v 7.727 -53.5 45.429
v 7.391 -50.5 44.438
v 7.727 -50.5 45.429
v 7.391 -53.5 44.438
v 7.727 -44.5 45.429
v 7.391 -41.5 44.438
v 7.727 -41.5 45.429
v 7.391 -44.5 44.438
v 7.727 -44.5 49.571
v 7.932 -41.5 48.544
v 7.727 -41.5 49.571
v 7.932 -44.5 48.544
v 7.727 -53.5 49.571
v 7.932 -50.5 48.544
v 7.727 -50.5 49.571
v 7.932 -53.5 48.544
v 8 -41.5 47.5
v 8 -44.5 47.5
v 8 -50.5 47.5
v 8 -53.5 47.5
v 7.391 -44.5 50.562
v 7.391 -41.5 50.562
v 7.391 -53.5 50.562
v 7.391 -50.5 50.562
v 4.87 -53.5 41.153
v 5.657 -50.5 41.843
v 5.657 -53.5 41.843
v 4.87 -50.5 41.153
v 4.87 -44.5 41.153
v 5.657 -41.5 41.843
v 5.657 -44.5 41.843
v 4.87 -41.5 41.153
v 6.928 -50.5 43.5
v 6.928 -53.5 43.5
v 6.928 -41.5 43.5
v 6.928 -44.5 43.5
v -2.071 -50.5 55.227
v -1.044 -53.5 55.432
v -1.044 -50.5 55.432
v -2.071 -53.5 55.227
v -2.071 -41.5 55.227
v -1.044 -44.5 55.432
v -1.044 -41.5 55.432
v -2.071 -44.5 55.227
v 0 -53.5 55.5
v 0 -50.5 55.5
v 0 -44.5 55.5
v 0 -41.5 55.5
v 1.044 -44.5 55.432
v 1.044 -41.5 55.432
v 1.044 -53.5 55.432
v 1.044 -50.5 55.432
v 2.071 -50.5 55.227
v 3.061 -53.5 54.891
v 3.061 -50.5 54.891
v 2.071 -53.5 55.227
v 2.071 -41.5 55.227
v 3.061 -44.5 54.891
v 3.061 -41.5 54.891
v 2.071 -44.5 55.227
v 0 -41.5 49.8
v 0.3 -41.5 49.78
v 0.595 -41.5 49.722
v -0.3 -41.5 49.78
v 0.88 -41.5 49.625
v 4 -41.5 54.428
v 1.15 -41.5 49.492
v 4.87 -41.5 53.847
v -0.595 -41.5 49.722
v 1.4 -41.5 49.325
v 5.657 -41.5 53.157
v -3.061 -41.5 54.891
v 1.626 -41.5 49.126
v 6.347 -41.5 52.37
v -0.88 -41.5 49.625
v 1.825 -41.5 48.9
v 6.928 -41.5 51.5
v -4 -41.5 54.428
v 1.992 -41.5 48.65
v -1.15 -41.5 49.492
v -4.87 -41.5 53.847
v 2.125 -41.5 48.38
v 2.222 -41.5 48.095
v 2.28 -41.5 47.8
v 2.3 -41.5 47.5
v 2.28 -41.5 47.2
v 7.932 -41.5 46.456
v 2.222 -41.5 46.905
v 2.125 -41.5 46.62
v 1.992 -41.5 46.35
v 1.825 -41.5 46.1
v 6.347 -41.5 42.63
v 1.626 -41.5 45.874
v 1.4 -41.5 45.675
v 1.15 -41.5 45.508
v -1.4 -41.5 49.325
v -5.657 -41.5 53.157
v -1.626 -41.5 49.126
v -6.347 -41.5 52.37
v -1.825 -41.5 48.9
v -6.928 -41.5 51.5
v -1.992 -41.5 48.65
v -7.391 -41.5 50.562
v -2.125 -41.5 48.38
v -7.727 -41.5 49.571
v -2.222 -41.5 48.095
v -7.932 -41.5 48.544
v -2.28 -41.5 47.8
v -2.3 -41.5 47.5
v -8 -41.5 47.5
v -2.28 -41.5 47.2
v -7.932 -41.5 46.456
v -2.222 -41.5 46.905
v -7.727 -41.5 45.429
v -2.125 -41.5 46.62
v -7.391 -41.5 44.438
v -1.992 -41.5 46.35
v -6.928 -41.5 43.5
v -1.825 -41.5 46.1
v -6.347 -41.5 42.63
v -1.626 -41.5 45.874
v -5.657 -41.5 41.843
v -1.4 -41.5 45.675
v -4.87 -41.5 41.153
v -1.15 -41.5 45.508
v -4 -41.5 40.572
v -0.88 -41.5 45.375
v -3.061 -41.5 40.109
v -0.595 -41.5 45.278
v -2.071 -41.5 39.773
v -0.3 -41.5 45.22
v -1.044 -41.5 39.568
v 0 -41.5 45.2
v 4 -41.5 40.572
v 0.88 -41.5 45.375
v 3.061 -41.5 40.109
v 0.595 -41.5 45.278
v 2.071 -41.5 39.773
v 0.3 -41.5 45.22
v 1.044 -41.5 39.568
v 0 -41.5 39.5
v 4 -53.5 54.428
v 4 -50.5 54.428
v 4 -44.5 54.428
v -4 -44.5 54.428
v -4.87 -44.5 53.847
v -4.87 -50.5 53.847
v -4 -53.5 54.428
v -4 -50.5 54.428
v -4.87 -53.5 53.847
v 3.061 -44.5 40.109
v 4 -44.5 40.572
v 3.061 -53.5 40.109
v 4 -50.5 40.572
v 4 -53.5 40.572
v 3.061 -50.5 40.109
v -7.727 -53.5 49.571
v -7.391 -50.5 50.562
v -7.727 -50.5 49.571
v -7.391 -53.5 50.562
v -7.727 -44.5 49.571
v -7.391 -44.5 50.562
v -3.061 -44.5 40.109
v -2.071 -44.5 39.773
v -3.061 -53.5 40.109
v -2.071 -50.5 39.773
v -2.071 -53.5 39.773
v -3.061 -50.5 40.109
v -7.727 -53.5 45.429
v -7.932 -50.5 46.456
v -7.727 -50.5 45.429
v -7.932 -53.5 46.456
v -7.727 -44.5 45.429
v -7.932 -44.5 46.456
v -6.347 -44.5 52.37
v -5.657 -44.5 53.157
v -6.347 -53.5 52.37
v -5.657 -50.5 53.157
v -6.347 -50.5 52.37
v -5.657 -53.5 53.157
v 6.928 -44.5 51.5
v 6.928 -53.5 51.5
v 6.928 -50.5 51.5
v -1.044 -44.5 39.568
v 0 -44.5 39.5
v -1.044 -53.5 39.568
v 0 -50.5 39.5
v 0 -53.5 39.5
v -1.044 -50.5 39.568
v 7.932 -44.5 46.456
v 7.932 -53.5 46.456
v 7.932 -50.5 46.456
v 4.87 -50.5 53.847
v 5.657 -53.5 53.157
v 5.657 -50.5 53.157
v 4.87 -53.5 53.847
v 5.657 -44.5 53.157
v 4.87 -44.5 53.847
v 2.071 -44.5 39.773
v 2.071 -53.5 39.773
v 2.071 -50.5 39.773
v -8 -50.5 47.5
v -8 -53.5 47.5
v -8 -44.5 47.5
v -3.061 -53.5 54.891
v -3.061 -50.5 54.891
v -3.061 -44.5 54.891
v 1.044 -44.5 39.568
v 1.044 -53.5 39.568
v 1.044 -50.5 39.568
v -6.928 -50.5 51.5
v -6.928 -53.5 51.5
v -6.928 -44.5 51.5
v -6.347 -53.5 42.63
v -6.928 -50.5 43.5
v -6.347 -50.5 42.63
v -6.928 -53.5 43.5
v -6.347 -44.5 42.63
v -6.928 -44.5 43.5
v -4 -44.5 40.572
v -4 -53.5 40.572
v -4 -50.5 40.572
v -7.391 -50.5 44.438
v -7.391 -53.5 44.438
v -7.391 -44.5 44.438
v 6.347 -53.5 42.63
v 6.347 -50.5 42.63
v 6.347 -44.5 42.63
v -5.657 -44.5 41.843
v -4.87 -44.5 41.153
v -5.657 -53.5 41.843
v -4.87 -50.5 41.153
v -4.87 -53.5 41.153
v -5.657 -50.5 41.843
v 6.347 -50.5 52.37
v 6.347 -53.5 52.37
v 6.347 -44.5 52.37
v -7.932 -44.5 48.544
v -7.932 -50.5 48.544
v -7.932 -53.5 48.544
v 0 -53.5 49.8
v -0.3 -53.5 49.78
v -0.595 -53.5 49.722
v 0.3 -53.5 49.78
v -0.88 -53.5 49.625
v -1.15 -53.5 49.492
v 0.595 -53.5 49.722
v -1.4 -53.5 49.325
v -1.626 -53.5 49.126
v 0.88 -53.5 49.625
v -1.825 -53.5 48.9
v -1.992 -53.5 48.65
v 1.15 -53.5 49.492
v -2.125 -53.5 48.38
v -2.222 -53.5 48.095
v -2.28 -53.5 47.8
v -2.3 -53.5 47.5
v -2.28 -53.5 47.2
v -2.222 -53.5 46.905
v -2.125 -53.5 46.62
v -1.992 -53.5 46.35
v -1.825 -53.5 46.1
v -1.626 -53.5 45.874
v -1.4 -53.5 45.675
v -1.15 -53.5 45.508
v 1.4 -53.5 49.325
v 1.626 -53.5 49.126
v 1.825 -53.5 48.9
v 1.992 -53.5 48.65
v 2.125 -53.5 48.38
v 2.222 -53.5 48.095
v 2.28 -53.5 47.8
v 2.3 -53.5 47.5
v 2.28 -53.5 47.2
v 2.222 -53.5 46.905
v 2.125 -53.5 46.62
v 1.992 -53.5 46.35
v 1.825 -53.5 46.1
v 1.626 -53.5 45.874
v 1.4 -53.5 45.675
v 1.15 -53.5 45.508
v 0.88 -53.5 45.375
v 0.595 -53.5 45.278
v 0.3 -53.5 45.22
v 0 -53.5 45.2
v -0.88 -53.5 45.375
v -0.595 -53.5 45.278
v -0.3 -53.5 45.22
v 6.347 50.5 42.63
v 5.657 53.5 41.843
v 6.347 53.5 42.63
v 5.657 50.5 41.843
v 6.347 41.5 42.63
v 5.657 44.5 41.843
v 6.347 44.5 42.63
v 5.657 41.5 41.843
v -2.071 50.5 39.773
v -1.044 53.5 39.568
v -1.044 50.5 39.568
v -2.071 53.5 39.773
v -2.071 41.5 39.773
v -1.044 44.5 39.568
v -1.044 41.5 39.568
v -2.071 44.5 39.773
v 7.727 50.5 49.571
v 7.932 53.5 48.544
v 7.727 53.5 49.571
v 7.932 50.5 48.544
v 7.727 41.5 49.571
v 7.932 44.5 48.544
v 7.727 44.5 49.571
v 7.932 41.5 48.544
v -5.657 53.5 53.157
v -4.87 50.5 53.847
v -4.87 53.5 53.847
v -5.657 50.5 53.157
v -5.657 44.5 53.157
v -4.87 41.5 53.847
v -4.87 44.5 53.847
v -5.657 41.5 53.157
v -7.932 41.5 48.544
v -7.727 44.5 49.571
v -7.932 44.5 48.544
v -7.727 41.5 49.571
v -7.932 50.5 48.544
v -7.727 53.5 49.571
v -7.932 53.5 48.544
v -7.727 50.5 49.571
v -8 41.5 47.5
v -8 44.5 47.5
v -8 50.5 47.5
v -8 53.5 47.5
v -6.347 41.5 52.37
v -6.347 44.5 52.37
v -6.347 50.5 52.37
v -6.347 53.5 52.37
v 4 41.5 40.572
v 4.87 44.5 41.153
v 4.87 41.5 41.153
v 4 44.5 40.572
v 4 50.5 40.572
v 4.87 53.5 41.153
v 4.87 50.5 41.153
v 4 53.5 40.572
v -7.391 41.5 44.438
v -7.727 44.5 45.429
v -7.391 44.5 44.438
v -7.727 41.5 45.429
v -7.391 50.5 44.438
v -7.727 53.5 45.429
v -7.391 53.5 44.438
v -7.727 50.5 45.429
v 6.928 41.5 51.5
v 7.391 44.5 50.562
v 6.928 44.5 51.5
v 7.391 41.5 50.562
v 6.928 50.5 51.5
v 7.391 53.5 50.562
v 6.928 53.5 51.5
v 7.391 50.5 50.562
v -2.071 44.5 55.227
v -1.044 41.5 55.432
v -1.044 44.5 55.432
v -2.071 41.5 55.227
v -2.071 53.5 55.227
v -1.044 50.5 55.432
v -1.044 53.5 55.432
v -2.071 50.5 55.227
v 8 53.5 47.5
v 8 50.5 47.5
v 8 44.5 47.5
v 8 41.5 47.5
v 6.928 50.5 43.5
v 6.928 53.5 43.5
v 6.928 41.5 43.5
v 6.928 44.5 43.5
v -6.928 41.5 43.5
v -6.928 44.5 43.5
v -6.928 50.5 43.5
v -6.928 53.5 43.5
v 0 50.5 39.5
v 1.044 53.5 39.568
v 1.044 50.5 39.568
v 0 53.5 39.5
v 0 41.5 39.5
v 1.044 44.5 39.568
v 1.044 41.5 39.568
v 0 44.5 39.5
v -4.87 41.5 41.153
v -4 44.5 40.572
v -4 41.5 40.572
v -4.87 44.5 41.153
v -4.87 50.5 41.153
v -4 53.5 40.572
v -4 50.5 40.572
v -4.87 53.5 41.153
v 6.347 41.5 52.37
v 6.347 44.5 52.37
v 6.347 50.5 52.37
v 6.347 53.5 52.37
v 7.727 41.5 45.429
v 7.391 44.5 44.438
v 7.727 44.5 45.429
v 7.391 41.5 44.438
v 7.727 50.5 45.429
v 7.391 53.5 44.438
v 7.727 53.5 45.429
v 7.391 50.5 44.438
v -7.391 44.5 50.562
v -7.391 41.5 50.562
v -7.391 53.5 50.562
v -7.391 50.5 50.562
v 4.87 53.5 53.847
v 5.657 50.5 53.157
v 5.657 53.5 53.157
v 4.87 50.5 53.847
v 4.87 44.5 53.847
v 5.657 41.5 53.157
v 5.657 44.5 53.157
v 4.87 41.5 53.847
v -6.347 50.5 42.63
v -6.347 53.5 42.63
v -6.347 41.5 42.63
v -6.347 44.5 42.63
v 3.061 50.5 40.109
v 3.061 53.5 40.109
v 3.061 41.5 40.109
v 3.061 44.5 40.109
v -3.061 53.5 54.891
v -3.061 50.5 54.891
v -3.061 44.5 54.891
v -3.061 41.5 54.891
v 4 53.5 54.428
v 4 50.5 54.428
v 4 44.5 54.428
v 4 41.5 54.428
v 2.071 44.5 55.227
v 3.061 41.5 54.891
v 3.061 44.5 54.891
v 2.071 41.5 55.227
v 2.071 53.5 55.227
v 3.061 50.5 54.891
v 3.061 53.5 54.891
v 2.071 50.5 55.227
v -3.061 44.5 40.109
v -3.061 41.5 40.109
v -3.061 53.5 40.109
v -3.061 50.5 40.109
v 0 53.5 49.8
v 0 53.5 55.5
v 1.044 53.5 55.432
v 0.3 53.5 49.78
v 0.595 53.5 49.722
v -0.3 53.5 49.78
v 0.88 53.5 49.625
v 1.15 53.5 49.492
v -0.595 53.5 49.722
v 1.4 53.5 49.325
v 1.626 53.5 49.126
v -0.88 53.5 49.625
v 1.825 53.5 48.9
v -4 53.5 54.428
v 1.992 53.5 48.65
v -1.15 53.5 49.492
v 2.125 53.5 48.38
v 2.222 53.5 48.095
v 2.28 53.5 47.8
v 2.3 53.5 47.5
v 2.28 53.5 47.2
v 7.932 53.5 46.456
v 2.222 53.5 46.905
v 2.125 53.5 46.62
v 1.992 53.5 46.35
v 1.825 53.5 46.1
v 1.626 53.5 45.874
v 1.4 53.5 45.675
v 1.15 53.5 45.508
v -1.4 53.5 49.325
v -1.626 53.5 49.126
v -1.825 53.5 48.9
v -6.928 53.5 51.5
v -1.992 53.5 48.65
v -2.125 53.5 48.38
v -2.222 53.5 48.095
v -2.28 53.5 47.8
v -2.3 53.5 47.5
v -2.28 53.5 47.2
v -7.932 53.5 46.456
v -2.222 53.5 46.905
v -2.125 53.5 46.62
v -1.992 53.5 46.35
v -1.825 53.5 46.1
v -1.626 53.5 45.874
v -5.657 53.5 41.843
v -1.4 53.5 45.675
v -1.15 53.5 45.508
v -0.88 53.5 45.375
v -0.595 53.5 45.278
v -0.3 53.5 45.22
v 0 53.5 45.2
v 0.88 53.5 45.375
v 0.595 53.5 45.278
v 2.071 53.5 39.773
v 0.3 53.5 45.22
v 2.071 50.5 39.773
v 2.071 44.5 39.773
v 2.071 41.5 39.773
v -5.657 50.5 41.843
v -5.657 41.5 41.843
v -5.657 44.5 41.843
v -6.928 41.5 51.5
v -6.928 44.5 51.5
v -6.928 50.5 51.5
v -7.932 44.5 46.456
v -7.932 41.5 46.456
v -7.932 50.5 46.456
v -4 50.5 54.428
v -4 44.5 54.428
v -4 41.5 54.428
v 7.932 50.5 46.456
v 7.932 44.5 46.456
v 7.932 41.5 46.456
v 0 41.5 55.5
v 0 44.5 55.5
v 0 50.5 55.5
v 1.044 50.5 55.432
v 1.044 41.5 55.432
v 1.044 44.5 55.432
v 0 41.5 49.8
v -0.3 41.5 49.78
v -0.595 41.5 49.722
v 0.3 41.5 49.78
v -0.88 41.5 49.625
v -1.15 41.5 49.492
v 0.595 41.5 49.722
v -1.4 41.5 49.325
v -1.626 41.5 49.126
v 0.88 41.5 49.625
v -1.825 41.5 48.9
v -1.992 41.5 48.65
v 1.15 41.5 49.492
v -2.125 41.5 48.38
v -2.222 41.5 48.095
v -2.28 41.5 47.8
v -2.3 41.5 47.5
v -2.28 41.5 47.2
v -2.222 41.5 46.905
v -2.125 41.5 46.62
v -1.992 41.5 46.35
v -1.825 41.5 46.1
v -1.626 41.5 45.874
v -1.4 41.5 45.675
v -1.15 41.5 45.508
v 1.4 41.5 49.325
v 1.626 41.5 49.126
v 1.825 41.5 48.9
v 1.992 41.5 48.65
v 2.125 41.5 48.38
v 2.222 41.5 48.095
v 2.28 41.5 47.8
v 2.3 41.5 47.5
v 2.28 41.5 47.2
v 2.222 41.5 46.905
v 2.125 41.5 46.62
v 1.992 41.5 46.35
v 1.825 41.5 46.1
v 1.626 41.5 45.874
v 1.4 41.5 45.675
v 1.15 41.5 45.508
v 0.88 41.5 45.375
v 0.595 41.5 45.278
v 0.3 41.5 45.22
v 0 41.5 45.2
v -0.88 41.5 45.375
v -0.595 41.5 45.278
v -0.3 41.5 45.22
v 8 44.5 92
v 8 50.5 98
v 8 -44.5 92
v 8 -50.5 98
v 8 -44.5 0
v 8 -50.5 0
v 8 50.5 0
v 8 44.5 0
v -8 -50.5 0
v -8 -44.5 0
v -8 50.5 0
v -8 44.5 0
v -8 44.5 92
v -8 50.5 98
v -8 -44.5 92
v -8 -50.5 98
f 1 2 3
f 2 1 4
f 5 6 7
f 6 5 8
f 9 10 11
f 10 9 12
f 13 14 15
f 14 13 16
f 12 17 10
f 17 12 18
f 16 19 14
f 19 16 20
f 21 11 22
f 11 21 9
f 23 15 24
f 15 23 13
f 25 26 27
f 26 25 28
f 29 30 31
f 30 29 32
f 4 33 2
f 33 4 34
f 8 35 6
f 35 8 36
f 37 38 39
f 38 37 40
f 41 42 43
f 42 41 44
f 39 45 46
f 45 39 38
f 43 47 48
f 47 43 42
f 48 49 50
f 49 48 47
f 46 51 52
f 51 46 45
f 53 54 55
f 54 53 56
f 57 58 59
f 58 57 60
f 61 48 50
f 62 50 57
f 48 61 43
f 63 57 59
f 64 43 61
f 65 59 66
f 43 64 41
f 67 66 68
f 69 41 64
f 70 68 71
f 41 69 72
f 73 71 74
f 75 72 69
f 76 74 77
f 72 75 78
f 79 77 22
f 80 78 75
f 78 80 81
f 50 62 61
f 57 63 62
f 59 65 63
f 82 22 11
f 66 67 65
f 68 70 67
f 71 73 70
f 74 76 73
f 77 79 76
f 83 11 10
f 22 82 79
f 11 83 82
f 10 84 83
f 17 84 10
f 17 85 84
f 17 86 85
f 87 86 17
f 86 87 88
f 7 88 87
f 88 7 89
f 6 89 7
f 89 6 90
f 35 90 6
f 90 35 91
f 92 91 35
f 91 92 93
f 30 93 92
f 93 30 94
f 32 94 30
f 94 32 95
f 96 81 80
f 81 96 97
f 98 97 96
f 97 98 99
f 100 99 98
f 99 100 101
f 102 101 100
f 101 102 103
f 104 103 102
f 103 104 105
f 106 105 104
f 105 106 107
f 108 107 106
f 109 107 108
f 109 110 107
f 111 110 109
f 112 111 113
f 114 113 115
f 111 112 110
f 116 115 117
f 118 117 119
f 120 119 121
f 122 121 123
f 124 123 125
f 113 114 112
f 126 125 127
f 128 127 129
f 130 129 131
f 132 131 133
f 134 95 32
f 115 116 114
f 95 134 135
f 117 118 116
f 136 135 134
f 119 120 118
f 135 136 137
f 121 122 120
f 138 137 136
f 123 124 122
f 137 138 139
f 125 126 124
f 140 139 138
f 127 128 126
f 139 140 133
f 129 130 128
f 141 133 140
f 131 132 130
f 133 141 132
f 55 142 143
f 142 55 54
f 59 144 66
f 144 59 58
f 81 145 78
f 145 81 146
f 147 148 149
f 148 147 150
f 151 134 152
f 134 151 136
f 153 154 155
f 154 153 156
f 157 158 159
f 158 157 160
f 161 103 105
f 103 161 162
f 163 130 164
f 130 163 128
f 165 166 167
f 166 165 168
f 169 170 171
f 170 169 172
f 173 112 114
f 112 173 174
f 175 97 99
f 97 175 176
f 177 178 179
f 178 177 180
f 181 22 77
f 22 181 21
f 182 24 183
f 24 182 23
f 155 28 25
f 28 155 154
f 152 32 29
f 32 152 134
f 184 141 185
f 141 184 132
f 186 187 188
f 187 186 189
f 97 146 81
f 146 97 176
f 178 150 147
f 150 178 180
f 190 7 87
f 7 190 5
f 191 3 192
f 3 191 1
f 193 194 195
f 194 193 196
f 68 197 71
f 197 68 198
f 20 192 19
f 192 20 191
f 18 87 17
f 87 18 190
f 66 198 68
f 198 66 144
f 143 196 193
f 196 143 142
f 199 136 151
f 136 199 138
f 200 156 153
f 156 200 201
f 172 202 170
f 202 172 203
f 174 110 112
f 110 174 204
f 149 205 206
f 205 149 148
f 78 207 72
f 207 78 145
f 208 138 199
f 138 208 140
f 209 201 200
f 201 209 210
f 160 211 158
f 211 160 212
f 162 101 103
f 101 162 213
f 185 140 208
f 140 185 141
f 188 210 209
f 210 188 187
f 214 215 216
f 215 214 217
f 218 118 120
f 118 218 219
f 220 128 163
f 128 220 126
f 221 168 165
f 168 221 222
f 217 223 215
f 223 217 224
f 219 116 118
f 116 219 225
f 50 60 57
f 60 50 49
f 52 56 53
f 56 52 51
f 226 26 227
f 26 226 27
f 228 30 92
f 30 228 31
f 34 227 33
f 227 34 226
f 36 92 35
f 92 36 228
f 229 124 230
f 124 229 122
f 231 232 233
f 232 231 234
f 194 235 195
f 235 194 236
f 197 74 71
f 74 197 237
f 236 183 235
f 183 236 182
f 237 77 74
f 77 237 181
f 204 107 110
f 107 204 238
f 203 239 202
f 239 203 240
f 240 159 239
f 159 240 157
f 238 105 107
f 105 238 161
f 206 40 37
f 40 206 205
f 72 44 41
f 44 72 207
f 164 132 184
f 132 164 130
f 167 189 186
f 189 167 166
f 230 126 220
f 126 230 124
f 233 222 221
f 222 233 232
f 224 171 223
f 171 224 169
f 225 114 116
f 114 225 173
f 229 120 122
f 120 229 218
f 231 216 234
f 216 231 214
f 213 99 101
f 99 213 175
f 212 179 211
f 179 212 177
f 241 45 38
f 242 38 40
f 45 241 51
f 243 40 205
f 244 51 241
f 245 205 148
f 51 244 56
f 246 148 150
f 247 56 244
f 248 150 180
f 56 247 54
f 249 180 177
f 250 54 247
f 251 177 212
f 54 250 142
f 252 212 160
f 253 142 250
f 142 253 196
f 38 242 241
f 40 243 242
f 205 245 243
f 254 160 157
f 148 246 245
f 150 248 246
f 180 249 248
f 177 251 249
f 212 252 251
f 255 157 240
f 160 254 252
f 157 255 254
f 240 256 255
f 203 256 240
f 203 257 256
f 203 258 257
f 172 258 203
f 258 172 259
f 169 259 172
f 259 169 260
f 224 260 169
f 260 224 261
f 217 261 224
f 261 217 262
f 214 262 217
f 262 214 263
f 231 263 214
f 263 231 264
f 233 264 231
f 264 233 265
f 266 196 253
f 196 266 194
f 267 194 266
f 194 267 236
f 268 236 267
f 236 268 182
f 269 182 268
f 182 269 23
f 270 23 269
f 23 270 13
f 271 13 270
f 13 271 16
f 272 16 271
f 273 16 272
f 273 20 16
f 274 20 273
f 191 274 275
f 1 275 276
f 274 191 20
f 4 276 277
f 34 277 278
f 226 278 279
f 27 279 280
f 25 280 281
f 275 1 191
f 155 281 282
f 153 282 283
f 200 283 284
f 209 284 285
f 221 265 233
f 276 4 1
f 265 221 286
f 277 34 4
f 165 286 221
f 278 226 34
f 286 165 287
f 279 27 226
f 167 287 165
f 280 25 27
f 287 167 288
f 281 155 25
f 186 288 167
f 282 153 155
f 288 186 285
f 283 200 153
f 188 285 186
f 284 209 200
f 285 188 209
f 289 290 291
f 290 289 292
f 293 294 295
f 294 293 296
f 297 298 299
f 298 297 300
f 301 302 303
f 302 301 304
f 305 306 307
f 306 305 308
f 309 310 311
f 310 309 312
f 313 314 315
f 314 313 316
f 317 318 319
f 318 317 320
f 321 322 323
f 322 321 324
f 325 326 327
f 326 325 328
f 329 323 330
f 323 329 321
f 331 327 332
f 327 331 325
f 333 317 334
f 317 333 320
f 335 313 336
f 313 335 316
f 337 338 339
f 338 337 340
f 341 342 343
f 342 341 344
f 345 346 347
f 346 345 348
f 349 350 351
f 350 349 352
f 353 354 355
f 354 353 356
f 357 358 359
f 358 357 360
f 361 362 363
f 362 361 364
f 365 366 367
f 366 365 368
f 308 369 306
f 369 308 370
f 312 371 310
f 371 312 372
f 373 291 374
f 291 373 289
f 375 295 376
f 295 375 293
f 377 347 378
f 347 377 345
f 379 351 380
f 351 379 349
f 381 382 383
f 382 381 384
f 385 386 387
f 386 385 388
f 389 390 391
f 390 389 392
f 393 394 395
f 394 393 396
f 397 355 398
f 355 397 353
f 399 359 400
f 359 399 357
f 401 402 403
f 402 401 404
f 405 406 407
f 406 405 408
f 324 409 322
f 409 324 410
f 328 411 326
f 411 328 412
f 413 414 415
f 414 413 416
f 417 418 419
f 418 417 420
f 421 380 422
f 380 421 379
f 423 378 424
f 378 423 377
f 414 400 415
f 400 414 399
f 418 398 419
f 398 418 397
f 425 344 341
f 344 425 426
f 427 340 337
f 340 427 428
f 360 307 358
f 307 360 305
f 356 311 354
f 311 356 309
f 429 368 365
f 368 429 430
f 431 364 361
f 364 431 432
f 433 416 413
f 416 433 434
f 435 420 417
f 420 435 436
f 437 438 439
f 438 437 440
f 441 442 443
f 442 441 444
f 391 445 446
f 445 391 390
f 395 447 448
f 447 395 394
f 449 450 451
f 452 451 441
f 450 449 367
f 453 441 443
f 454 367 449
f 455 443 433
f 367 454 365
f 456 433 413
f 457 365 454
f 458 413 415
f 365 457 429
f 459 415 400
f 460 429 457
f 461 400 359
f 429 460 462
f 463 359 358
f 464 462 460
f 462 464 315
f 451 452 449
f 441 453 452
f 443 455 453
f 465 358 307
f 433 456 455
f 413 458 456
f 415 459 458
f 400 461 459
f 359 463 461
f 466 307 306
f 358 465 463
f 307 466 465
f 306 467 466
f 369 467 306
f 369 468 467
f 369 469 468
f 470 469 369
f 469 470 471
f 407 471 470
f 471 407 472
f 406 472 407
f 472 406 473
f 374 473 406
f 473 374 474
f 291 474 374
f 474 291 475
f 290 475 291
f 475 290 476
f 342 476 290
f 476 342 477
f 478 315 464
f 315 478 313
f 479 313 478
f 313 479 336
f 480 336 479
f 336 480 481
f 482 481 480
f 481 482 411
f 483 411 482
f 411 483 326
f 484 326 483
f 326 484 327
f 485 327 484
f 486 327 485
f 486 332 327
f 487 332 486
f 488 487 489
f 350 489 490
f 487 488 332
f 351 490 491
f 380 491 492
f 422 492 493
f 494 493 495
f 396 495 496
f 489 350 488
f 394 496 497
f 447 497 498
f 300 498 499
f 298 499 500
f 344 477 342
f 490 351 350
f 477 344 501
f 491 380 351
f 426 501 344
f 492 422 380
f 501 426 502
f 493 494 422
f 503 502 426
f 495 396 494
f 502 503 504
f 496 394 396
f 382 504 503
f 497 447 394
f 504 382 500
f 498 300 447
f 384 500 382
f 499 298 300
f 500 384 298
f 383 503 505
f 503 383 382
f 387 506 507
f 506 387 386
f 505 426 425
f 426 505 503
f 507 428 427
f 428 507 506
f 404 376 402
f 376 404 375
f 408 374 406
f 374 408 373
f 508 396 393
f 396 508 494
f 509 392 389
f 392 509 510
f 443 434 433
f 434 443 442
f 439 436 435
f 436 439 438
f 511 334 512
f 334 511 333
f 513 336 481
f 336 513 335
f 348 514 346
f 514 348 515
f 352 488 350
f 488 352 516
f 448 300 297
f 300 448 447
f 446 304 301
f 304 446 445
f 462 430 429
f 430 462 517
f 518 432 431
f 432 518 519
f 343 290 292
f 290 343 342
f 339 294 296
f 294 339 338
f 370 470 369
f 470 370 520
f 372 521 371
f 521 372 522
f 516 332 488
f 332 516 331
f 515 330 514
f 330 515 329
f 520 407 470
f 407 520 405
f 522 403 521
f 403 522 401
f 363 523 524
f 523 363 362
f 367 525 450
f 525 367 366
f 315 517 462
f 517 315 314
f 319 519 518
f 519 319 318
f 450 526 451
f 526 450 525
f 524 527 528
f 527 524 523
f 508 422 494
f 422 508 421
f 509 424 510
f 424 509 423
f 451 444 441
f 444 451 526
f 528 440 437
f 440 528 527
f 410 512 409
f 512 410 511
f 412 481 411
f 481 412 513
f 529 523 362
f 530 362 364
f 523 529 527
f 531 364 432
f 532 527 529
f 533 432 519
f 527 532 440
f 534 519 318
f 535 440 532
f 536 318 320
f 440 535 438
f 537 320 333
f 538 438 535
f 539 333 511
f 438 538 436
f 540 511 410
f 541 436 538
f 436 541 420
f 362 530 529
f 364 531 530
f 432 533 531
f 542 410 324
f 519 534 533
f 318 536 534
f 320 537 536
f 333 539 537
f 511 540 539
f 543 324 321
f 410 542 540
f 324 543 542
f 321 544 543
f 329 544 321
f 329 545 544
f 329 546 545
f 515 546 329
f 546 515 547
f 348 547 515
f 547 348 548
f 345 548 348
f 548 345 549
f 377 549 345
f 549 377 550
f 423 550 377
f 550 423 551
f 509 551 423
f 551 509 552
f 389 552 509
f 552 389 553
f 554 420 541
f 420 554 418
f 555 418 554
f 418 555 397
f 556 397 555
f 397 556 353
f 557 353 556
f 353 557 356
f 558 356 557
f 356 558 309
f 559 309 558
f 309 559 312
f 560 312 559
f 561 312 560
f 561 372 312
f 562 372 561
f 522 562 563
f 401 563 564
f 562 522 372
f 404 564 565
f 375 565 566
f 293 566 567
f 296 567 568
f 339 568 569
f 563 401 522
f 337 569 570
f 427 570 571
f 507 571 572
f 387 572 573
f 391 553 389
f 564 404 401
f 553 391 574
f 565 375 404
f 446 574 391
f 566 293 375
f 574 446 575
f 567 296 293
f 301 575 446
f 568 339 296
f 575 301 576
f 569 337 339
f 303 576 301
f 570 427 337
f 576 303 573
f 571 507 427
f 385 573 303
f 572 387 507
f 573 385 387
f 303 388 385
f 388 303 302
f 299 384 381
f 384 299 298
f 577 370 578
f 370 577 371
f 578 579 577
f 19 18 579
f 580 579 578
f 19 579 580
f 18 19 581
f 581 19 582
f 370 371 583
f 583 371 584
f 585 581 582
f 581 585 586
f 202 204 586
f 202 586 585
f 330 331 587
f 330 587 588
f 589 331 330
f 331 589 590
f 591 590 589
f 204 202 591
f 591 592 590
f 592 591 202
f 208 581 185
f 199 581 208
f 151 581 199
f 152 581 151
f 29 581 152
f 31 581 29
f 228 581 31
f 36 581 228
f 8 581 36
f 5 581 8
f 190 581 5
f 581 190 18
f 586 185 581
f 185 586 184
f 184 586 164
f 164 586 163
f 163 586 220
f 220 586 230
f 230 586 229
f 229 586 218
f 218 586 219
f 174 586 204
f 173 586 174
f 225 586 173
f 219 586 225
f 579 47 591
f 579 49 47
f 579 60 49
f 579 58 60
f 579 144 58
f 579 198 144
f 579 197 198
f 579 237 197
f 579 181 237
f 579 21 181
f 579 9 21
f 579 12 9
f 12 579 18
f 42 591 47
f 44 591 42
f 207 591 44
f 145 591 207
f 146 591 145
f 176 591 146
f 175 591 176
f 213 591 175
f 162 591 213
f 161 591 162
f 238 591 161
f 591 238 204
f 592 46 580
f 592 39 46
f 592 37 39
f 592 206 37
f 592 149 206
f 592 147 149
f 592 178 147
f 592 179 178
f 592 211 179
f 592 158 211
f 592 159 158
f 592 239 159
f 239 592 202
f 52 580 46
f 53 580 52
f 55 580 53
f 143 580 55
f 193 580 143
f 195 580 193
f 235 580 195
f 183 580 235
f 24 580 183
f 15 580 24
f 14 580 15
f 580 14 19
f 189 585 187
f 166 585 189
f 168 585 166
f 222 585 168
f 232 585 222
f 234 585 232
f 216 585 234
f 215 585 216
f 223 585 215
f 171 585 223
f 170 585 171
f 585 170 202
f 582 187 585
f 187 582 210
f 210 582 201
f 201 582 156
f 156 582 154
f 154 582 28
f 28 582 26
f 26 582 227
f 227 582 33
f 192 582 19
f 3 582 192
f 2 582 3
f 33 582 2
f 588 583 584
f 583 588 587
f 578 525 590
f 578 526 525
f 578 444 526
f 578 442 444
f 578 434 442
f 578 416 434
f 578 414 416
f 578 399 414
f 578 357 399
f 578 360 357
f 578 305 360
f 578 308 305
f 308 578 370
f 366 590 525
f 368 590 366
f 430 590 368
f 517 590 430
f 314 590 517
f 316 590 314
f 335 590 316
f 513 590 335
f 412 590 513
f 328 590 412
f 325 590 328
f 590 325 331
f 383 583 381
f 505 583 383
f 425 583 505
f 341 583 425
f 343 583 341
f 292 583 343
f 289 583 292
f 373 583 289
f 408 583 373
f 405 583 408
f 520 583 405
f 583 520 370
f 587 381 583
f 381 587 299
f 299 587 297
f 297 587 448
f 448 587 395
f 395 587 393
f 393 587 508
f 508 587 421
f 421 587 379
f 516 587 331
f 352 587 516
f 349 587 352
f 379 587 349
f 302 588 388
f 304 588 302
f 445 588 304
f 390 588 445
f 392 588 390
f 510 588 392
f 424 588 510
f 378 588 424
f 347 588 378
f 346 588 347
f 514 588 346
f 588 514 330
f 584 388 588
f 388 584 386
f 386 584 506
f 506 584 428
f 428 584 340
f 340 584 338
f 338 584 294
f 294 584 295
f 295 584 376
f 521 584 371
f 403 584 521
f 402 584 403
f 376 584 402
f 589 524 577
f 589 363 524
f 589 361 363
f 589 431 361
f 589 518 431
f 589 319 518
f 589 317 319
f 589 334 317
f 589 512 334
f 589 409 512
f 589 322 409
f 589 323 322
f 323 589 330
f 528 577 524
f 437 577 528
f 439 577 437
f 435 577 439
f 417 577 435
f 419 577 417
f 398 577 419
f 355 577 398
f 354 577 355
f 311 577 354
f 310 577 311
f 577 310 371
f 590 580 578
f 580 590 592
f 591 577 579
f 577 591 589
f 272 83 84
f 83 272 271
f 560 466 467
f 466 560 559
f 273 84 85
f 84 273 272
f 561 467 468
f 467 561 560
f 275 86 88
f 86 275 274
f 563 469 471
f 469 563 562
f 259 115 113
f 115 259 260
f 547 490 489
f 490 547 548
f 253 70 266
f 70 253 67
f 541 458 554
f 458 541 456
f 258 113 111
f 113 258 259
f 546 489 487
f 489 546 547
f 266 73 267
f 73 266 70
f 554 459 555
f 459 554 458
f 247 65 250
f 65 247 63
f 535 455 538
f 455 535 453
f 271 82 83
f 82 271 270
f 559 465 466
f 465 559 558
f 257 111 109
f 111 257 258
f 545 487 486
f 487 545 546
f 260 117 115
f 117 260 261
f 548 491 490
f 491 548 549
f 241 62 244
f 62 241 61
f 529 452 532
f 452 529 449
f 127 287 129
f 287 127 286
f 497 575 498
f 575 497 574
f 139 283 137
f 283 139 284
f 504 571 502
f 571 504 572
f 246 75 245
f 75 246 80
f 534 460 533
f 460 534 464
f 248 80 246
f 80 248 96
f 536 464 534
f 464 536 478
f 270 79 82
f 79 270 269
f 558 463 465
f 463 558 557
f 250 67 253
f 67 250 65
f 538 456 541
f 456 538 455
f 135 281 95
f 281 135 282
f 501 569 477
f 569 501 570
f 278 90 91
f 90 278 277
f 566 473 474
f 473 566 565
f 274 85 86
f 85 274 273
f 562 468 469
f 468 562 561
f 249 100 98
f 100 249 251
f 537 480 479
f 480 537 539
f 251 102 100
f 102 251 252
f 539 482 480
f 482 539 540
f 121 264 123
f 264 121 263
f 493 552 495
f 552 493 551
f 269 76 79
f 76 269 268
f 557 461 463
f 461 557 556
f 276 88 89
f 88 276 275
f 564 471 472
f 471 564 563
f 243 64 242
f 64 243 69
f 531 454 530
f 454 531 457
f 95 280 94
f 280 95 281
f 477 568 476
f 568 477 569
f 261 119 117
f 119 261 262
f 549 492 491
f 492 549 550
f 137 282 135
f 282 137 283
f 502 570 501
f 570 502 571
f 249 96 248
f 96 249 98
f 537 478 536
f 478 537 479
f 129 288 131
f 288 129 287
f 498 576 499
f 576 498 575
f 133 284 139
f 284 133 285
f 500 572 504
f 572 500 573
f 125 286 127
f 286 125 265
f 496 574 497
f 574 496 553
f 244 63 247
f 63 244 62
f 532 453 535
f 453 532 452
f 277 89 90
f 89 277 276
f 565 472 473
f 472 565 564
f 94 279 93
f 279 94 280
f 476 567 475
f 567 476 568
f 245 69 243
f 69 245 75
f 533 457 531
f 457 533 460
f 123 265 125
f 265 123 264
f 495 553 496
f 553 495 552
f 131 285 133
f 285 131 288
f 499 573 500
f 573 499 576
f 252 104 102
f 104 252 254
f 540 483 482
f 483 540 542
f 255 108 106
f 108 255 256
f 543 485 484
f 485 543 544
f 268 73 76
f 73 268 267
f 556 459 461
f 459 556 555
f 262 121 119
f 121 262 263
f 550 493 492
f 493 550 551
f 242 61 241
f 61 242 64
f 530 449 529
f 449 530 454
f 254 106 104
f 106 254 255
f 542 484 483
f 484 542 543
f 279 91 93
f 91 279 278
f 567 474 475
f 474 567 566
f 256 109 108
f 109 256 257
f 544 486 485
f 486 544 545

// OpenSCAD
// file: common.scad
// Shared Rev A CAD parameters and helper modules.
// Units: millimeters.

$fn = 48;

// Hitec HS-625MG vendor baseline. Verify with calipers before final print.
servo_l = 40.6;
servo_w = 19.8;
servo_h = 37.8;
spline_d = 6.0;
spline_h = 5.0;
servo_mount_slot_l = 9.0;
servo_mount_slot_w = 3.4;
servo_mount_span_x = 49.5;
servo_mount_span_y = 27.5;

// Rev A structure.
base_l = 160;
base_w = 120;
base_t = 6;
wall_t = 6;
mount_t = 5;
outer_w = 95;
outer_h = 95;
outer_depth = 16;
inner_w = 55;
inner_h = 72;
nozzle_l = 85;
nozzle_d = 24;
imu_l = 28;
imu_w = 22;
bearing_d = 8.0;
shaft_d = 4.0;

// Manufacturing assumptions.
m3_clearance_d = 3.4;
bench_fastener_d = 5.0;
fillet_r = 3.0;

module rounded_plate(size_xyz, r=3) {
    hull() {
        for (x=[-size_xyz[0]/2+r, size_xyz[0]/2-r])
            for (y=[-size_xyz[1]/2+r, size_xyz[1]/2-r])
                translate([x, y, 0])
                    cylinder(h=size_xyz[2], r=r, center=true);
    }
}

module slotted_hole(slot_l, slot_w, h=2) {
    hull() {
        translate([-slot_l/2 + slot_w/2, 0, 0])
            cylinder(h=h, d=slot_w, center=true);
        translate([slot_l/2 - slot_w/2, 0, 0])
            cylinder(h=h, d=slot_w, center=true);
    }
}

module servo_mount_plate() {
    difference() {
        rounded_plate([servo_mount_span_x + 18, servo_mount_span_y + 16, mount_t], 2);

        for (x=[-servo_mount_span_x/2, servo_mount_span_x/2])
            for (y=[-servo_mount_span_y/2, servo_mount_span_y/2])
                translate([x, y, 0])
                    slotted_hole(servo_mount_slot_l, servo_mount_slot_w, mount_t + 1);
    }
}

module servo_body_clearance(extra=1.0) {
    cube([servo_l + extra, servo_w + extra, servo_h + extra], center=true);
}

module shaft_clearance(h=120) {
    rotate([90, 0, 0])
        cylinder(h=h, d=shaft_d + 0.6, center=true);
}

module imu_pad() {
    difference() {
        rounded_plate([imu_l + 8, imu_w + 8, 3], 2);
        for (x=[-(imu_l/2 - 4), imu_l/2 - 4])
            for (y=[-(imu_w/2 - 4), imu_w/2 - 4])
                translate([x, y, 0])
                    cylinder(h=4, d=2.2, center=true);
    }
}
// main file
include <common.scad>

// Rev A outer yaw frame.
// Print on its back face if possible; add supports only if needed.

difference() {
    union() {
        translate([0, -outer_w/2, outer_h/2])
            cube([outer_depth, wall_t, outer_h], center=true);
        translate([0, outer_w/2, outer_h/2])
            cube([outer_depth, wall_t, outer_h], center=true);
        translate([0, 0, outer_h])
            cube([outer_depth, outer_w + wall_t, wall_t], center=true);

        // Local bearing/bushing bosses for pitch shaft support.
        for (y=[-outer_w/2, outer_w/2])
            translate([0, y, outer_h/2])
                rotate([90, 0, 0])
                    cylinder(h=wall_t + 6, d=bearing_d + 8, center=true);
    }

    // Pitch-axis shaft clearance.
    translate([0, 0, outer_h/2])
        shaft_clearance(outer_w + 20);

    // Lightening/inspection window.
    translate([0, 0, outer_h*0.58])
        cube([outer_depth + 1, outer_w - 28, outer_h*0.35], center=true);
}
